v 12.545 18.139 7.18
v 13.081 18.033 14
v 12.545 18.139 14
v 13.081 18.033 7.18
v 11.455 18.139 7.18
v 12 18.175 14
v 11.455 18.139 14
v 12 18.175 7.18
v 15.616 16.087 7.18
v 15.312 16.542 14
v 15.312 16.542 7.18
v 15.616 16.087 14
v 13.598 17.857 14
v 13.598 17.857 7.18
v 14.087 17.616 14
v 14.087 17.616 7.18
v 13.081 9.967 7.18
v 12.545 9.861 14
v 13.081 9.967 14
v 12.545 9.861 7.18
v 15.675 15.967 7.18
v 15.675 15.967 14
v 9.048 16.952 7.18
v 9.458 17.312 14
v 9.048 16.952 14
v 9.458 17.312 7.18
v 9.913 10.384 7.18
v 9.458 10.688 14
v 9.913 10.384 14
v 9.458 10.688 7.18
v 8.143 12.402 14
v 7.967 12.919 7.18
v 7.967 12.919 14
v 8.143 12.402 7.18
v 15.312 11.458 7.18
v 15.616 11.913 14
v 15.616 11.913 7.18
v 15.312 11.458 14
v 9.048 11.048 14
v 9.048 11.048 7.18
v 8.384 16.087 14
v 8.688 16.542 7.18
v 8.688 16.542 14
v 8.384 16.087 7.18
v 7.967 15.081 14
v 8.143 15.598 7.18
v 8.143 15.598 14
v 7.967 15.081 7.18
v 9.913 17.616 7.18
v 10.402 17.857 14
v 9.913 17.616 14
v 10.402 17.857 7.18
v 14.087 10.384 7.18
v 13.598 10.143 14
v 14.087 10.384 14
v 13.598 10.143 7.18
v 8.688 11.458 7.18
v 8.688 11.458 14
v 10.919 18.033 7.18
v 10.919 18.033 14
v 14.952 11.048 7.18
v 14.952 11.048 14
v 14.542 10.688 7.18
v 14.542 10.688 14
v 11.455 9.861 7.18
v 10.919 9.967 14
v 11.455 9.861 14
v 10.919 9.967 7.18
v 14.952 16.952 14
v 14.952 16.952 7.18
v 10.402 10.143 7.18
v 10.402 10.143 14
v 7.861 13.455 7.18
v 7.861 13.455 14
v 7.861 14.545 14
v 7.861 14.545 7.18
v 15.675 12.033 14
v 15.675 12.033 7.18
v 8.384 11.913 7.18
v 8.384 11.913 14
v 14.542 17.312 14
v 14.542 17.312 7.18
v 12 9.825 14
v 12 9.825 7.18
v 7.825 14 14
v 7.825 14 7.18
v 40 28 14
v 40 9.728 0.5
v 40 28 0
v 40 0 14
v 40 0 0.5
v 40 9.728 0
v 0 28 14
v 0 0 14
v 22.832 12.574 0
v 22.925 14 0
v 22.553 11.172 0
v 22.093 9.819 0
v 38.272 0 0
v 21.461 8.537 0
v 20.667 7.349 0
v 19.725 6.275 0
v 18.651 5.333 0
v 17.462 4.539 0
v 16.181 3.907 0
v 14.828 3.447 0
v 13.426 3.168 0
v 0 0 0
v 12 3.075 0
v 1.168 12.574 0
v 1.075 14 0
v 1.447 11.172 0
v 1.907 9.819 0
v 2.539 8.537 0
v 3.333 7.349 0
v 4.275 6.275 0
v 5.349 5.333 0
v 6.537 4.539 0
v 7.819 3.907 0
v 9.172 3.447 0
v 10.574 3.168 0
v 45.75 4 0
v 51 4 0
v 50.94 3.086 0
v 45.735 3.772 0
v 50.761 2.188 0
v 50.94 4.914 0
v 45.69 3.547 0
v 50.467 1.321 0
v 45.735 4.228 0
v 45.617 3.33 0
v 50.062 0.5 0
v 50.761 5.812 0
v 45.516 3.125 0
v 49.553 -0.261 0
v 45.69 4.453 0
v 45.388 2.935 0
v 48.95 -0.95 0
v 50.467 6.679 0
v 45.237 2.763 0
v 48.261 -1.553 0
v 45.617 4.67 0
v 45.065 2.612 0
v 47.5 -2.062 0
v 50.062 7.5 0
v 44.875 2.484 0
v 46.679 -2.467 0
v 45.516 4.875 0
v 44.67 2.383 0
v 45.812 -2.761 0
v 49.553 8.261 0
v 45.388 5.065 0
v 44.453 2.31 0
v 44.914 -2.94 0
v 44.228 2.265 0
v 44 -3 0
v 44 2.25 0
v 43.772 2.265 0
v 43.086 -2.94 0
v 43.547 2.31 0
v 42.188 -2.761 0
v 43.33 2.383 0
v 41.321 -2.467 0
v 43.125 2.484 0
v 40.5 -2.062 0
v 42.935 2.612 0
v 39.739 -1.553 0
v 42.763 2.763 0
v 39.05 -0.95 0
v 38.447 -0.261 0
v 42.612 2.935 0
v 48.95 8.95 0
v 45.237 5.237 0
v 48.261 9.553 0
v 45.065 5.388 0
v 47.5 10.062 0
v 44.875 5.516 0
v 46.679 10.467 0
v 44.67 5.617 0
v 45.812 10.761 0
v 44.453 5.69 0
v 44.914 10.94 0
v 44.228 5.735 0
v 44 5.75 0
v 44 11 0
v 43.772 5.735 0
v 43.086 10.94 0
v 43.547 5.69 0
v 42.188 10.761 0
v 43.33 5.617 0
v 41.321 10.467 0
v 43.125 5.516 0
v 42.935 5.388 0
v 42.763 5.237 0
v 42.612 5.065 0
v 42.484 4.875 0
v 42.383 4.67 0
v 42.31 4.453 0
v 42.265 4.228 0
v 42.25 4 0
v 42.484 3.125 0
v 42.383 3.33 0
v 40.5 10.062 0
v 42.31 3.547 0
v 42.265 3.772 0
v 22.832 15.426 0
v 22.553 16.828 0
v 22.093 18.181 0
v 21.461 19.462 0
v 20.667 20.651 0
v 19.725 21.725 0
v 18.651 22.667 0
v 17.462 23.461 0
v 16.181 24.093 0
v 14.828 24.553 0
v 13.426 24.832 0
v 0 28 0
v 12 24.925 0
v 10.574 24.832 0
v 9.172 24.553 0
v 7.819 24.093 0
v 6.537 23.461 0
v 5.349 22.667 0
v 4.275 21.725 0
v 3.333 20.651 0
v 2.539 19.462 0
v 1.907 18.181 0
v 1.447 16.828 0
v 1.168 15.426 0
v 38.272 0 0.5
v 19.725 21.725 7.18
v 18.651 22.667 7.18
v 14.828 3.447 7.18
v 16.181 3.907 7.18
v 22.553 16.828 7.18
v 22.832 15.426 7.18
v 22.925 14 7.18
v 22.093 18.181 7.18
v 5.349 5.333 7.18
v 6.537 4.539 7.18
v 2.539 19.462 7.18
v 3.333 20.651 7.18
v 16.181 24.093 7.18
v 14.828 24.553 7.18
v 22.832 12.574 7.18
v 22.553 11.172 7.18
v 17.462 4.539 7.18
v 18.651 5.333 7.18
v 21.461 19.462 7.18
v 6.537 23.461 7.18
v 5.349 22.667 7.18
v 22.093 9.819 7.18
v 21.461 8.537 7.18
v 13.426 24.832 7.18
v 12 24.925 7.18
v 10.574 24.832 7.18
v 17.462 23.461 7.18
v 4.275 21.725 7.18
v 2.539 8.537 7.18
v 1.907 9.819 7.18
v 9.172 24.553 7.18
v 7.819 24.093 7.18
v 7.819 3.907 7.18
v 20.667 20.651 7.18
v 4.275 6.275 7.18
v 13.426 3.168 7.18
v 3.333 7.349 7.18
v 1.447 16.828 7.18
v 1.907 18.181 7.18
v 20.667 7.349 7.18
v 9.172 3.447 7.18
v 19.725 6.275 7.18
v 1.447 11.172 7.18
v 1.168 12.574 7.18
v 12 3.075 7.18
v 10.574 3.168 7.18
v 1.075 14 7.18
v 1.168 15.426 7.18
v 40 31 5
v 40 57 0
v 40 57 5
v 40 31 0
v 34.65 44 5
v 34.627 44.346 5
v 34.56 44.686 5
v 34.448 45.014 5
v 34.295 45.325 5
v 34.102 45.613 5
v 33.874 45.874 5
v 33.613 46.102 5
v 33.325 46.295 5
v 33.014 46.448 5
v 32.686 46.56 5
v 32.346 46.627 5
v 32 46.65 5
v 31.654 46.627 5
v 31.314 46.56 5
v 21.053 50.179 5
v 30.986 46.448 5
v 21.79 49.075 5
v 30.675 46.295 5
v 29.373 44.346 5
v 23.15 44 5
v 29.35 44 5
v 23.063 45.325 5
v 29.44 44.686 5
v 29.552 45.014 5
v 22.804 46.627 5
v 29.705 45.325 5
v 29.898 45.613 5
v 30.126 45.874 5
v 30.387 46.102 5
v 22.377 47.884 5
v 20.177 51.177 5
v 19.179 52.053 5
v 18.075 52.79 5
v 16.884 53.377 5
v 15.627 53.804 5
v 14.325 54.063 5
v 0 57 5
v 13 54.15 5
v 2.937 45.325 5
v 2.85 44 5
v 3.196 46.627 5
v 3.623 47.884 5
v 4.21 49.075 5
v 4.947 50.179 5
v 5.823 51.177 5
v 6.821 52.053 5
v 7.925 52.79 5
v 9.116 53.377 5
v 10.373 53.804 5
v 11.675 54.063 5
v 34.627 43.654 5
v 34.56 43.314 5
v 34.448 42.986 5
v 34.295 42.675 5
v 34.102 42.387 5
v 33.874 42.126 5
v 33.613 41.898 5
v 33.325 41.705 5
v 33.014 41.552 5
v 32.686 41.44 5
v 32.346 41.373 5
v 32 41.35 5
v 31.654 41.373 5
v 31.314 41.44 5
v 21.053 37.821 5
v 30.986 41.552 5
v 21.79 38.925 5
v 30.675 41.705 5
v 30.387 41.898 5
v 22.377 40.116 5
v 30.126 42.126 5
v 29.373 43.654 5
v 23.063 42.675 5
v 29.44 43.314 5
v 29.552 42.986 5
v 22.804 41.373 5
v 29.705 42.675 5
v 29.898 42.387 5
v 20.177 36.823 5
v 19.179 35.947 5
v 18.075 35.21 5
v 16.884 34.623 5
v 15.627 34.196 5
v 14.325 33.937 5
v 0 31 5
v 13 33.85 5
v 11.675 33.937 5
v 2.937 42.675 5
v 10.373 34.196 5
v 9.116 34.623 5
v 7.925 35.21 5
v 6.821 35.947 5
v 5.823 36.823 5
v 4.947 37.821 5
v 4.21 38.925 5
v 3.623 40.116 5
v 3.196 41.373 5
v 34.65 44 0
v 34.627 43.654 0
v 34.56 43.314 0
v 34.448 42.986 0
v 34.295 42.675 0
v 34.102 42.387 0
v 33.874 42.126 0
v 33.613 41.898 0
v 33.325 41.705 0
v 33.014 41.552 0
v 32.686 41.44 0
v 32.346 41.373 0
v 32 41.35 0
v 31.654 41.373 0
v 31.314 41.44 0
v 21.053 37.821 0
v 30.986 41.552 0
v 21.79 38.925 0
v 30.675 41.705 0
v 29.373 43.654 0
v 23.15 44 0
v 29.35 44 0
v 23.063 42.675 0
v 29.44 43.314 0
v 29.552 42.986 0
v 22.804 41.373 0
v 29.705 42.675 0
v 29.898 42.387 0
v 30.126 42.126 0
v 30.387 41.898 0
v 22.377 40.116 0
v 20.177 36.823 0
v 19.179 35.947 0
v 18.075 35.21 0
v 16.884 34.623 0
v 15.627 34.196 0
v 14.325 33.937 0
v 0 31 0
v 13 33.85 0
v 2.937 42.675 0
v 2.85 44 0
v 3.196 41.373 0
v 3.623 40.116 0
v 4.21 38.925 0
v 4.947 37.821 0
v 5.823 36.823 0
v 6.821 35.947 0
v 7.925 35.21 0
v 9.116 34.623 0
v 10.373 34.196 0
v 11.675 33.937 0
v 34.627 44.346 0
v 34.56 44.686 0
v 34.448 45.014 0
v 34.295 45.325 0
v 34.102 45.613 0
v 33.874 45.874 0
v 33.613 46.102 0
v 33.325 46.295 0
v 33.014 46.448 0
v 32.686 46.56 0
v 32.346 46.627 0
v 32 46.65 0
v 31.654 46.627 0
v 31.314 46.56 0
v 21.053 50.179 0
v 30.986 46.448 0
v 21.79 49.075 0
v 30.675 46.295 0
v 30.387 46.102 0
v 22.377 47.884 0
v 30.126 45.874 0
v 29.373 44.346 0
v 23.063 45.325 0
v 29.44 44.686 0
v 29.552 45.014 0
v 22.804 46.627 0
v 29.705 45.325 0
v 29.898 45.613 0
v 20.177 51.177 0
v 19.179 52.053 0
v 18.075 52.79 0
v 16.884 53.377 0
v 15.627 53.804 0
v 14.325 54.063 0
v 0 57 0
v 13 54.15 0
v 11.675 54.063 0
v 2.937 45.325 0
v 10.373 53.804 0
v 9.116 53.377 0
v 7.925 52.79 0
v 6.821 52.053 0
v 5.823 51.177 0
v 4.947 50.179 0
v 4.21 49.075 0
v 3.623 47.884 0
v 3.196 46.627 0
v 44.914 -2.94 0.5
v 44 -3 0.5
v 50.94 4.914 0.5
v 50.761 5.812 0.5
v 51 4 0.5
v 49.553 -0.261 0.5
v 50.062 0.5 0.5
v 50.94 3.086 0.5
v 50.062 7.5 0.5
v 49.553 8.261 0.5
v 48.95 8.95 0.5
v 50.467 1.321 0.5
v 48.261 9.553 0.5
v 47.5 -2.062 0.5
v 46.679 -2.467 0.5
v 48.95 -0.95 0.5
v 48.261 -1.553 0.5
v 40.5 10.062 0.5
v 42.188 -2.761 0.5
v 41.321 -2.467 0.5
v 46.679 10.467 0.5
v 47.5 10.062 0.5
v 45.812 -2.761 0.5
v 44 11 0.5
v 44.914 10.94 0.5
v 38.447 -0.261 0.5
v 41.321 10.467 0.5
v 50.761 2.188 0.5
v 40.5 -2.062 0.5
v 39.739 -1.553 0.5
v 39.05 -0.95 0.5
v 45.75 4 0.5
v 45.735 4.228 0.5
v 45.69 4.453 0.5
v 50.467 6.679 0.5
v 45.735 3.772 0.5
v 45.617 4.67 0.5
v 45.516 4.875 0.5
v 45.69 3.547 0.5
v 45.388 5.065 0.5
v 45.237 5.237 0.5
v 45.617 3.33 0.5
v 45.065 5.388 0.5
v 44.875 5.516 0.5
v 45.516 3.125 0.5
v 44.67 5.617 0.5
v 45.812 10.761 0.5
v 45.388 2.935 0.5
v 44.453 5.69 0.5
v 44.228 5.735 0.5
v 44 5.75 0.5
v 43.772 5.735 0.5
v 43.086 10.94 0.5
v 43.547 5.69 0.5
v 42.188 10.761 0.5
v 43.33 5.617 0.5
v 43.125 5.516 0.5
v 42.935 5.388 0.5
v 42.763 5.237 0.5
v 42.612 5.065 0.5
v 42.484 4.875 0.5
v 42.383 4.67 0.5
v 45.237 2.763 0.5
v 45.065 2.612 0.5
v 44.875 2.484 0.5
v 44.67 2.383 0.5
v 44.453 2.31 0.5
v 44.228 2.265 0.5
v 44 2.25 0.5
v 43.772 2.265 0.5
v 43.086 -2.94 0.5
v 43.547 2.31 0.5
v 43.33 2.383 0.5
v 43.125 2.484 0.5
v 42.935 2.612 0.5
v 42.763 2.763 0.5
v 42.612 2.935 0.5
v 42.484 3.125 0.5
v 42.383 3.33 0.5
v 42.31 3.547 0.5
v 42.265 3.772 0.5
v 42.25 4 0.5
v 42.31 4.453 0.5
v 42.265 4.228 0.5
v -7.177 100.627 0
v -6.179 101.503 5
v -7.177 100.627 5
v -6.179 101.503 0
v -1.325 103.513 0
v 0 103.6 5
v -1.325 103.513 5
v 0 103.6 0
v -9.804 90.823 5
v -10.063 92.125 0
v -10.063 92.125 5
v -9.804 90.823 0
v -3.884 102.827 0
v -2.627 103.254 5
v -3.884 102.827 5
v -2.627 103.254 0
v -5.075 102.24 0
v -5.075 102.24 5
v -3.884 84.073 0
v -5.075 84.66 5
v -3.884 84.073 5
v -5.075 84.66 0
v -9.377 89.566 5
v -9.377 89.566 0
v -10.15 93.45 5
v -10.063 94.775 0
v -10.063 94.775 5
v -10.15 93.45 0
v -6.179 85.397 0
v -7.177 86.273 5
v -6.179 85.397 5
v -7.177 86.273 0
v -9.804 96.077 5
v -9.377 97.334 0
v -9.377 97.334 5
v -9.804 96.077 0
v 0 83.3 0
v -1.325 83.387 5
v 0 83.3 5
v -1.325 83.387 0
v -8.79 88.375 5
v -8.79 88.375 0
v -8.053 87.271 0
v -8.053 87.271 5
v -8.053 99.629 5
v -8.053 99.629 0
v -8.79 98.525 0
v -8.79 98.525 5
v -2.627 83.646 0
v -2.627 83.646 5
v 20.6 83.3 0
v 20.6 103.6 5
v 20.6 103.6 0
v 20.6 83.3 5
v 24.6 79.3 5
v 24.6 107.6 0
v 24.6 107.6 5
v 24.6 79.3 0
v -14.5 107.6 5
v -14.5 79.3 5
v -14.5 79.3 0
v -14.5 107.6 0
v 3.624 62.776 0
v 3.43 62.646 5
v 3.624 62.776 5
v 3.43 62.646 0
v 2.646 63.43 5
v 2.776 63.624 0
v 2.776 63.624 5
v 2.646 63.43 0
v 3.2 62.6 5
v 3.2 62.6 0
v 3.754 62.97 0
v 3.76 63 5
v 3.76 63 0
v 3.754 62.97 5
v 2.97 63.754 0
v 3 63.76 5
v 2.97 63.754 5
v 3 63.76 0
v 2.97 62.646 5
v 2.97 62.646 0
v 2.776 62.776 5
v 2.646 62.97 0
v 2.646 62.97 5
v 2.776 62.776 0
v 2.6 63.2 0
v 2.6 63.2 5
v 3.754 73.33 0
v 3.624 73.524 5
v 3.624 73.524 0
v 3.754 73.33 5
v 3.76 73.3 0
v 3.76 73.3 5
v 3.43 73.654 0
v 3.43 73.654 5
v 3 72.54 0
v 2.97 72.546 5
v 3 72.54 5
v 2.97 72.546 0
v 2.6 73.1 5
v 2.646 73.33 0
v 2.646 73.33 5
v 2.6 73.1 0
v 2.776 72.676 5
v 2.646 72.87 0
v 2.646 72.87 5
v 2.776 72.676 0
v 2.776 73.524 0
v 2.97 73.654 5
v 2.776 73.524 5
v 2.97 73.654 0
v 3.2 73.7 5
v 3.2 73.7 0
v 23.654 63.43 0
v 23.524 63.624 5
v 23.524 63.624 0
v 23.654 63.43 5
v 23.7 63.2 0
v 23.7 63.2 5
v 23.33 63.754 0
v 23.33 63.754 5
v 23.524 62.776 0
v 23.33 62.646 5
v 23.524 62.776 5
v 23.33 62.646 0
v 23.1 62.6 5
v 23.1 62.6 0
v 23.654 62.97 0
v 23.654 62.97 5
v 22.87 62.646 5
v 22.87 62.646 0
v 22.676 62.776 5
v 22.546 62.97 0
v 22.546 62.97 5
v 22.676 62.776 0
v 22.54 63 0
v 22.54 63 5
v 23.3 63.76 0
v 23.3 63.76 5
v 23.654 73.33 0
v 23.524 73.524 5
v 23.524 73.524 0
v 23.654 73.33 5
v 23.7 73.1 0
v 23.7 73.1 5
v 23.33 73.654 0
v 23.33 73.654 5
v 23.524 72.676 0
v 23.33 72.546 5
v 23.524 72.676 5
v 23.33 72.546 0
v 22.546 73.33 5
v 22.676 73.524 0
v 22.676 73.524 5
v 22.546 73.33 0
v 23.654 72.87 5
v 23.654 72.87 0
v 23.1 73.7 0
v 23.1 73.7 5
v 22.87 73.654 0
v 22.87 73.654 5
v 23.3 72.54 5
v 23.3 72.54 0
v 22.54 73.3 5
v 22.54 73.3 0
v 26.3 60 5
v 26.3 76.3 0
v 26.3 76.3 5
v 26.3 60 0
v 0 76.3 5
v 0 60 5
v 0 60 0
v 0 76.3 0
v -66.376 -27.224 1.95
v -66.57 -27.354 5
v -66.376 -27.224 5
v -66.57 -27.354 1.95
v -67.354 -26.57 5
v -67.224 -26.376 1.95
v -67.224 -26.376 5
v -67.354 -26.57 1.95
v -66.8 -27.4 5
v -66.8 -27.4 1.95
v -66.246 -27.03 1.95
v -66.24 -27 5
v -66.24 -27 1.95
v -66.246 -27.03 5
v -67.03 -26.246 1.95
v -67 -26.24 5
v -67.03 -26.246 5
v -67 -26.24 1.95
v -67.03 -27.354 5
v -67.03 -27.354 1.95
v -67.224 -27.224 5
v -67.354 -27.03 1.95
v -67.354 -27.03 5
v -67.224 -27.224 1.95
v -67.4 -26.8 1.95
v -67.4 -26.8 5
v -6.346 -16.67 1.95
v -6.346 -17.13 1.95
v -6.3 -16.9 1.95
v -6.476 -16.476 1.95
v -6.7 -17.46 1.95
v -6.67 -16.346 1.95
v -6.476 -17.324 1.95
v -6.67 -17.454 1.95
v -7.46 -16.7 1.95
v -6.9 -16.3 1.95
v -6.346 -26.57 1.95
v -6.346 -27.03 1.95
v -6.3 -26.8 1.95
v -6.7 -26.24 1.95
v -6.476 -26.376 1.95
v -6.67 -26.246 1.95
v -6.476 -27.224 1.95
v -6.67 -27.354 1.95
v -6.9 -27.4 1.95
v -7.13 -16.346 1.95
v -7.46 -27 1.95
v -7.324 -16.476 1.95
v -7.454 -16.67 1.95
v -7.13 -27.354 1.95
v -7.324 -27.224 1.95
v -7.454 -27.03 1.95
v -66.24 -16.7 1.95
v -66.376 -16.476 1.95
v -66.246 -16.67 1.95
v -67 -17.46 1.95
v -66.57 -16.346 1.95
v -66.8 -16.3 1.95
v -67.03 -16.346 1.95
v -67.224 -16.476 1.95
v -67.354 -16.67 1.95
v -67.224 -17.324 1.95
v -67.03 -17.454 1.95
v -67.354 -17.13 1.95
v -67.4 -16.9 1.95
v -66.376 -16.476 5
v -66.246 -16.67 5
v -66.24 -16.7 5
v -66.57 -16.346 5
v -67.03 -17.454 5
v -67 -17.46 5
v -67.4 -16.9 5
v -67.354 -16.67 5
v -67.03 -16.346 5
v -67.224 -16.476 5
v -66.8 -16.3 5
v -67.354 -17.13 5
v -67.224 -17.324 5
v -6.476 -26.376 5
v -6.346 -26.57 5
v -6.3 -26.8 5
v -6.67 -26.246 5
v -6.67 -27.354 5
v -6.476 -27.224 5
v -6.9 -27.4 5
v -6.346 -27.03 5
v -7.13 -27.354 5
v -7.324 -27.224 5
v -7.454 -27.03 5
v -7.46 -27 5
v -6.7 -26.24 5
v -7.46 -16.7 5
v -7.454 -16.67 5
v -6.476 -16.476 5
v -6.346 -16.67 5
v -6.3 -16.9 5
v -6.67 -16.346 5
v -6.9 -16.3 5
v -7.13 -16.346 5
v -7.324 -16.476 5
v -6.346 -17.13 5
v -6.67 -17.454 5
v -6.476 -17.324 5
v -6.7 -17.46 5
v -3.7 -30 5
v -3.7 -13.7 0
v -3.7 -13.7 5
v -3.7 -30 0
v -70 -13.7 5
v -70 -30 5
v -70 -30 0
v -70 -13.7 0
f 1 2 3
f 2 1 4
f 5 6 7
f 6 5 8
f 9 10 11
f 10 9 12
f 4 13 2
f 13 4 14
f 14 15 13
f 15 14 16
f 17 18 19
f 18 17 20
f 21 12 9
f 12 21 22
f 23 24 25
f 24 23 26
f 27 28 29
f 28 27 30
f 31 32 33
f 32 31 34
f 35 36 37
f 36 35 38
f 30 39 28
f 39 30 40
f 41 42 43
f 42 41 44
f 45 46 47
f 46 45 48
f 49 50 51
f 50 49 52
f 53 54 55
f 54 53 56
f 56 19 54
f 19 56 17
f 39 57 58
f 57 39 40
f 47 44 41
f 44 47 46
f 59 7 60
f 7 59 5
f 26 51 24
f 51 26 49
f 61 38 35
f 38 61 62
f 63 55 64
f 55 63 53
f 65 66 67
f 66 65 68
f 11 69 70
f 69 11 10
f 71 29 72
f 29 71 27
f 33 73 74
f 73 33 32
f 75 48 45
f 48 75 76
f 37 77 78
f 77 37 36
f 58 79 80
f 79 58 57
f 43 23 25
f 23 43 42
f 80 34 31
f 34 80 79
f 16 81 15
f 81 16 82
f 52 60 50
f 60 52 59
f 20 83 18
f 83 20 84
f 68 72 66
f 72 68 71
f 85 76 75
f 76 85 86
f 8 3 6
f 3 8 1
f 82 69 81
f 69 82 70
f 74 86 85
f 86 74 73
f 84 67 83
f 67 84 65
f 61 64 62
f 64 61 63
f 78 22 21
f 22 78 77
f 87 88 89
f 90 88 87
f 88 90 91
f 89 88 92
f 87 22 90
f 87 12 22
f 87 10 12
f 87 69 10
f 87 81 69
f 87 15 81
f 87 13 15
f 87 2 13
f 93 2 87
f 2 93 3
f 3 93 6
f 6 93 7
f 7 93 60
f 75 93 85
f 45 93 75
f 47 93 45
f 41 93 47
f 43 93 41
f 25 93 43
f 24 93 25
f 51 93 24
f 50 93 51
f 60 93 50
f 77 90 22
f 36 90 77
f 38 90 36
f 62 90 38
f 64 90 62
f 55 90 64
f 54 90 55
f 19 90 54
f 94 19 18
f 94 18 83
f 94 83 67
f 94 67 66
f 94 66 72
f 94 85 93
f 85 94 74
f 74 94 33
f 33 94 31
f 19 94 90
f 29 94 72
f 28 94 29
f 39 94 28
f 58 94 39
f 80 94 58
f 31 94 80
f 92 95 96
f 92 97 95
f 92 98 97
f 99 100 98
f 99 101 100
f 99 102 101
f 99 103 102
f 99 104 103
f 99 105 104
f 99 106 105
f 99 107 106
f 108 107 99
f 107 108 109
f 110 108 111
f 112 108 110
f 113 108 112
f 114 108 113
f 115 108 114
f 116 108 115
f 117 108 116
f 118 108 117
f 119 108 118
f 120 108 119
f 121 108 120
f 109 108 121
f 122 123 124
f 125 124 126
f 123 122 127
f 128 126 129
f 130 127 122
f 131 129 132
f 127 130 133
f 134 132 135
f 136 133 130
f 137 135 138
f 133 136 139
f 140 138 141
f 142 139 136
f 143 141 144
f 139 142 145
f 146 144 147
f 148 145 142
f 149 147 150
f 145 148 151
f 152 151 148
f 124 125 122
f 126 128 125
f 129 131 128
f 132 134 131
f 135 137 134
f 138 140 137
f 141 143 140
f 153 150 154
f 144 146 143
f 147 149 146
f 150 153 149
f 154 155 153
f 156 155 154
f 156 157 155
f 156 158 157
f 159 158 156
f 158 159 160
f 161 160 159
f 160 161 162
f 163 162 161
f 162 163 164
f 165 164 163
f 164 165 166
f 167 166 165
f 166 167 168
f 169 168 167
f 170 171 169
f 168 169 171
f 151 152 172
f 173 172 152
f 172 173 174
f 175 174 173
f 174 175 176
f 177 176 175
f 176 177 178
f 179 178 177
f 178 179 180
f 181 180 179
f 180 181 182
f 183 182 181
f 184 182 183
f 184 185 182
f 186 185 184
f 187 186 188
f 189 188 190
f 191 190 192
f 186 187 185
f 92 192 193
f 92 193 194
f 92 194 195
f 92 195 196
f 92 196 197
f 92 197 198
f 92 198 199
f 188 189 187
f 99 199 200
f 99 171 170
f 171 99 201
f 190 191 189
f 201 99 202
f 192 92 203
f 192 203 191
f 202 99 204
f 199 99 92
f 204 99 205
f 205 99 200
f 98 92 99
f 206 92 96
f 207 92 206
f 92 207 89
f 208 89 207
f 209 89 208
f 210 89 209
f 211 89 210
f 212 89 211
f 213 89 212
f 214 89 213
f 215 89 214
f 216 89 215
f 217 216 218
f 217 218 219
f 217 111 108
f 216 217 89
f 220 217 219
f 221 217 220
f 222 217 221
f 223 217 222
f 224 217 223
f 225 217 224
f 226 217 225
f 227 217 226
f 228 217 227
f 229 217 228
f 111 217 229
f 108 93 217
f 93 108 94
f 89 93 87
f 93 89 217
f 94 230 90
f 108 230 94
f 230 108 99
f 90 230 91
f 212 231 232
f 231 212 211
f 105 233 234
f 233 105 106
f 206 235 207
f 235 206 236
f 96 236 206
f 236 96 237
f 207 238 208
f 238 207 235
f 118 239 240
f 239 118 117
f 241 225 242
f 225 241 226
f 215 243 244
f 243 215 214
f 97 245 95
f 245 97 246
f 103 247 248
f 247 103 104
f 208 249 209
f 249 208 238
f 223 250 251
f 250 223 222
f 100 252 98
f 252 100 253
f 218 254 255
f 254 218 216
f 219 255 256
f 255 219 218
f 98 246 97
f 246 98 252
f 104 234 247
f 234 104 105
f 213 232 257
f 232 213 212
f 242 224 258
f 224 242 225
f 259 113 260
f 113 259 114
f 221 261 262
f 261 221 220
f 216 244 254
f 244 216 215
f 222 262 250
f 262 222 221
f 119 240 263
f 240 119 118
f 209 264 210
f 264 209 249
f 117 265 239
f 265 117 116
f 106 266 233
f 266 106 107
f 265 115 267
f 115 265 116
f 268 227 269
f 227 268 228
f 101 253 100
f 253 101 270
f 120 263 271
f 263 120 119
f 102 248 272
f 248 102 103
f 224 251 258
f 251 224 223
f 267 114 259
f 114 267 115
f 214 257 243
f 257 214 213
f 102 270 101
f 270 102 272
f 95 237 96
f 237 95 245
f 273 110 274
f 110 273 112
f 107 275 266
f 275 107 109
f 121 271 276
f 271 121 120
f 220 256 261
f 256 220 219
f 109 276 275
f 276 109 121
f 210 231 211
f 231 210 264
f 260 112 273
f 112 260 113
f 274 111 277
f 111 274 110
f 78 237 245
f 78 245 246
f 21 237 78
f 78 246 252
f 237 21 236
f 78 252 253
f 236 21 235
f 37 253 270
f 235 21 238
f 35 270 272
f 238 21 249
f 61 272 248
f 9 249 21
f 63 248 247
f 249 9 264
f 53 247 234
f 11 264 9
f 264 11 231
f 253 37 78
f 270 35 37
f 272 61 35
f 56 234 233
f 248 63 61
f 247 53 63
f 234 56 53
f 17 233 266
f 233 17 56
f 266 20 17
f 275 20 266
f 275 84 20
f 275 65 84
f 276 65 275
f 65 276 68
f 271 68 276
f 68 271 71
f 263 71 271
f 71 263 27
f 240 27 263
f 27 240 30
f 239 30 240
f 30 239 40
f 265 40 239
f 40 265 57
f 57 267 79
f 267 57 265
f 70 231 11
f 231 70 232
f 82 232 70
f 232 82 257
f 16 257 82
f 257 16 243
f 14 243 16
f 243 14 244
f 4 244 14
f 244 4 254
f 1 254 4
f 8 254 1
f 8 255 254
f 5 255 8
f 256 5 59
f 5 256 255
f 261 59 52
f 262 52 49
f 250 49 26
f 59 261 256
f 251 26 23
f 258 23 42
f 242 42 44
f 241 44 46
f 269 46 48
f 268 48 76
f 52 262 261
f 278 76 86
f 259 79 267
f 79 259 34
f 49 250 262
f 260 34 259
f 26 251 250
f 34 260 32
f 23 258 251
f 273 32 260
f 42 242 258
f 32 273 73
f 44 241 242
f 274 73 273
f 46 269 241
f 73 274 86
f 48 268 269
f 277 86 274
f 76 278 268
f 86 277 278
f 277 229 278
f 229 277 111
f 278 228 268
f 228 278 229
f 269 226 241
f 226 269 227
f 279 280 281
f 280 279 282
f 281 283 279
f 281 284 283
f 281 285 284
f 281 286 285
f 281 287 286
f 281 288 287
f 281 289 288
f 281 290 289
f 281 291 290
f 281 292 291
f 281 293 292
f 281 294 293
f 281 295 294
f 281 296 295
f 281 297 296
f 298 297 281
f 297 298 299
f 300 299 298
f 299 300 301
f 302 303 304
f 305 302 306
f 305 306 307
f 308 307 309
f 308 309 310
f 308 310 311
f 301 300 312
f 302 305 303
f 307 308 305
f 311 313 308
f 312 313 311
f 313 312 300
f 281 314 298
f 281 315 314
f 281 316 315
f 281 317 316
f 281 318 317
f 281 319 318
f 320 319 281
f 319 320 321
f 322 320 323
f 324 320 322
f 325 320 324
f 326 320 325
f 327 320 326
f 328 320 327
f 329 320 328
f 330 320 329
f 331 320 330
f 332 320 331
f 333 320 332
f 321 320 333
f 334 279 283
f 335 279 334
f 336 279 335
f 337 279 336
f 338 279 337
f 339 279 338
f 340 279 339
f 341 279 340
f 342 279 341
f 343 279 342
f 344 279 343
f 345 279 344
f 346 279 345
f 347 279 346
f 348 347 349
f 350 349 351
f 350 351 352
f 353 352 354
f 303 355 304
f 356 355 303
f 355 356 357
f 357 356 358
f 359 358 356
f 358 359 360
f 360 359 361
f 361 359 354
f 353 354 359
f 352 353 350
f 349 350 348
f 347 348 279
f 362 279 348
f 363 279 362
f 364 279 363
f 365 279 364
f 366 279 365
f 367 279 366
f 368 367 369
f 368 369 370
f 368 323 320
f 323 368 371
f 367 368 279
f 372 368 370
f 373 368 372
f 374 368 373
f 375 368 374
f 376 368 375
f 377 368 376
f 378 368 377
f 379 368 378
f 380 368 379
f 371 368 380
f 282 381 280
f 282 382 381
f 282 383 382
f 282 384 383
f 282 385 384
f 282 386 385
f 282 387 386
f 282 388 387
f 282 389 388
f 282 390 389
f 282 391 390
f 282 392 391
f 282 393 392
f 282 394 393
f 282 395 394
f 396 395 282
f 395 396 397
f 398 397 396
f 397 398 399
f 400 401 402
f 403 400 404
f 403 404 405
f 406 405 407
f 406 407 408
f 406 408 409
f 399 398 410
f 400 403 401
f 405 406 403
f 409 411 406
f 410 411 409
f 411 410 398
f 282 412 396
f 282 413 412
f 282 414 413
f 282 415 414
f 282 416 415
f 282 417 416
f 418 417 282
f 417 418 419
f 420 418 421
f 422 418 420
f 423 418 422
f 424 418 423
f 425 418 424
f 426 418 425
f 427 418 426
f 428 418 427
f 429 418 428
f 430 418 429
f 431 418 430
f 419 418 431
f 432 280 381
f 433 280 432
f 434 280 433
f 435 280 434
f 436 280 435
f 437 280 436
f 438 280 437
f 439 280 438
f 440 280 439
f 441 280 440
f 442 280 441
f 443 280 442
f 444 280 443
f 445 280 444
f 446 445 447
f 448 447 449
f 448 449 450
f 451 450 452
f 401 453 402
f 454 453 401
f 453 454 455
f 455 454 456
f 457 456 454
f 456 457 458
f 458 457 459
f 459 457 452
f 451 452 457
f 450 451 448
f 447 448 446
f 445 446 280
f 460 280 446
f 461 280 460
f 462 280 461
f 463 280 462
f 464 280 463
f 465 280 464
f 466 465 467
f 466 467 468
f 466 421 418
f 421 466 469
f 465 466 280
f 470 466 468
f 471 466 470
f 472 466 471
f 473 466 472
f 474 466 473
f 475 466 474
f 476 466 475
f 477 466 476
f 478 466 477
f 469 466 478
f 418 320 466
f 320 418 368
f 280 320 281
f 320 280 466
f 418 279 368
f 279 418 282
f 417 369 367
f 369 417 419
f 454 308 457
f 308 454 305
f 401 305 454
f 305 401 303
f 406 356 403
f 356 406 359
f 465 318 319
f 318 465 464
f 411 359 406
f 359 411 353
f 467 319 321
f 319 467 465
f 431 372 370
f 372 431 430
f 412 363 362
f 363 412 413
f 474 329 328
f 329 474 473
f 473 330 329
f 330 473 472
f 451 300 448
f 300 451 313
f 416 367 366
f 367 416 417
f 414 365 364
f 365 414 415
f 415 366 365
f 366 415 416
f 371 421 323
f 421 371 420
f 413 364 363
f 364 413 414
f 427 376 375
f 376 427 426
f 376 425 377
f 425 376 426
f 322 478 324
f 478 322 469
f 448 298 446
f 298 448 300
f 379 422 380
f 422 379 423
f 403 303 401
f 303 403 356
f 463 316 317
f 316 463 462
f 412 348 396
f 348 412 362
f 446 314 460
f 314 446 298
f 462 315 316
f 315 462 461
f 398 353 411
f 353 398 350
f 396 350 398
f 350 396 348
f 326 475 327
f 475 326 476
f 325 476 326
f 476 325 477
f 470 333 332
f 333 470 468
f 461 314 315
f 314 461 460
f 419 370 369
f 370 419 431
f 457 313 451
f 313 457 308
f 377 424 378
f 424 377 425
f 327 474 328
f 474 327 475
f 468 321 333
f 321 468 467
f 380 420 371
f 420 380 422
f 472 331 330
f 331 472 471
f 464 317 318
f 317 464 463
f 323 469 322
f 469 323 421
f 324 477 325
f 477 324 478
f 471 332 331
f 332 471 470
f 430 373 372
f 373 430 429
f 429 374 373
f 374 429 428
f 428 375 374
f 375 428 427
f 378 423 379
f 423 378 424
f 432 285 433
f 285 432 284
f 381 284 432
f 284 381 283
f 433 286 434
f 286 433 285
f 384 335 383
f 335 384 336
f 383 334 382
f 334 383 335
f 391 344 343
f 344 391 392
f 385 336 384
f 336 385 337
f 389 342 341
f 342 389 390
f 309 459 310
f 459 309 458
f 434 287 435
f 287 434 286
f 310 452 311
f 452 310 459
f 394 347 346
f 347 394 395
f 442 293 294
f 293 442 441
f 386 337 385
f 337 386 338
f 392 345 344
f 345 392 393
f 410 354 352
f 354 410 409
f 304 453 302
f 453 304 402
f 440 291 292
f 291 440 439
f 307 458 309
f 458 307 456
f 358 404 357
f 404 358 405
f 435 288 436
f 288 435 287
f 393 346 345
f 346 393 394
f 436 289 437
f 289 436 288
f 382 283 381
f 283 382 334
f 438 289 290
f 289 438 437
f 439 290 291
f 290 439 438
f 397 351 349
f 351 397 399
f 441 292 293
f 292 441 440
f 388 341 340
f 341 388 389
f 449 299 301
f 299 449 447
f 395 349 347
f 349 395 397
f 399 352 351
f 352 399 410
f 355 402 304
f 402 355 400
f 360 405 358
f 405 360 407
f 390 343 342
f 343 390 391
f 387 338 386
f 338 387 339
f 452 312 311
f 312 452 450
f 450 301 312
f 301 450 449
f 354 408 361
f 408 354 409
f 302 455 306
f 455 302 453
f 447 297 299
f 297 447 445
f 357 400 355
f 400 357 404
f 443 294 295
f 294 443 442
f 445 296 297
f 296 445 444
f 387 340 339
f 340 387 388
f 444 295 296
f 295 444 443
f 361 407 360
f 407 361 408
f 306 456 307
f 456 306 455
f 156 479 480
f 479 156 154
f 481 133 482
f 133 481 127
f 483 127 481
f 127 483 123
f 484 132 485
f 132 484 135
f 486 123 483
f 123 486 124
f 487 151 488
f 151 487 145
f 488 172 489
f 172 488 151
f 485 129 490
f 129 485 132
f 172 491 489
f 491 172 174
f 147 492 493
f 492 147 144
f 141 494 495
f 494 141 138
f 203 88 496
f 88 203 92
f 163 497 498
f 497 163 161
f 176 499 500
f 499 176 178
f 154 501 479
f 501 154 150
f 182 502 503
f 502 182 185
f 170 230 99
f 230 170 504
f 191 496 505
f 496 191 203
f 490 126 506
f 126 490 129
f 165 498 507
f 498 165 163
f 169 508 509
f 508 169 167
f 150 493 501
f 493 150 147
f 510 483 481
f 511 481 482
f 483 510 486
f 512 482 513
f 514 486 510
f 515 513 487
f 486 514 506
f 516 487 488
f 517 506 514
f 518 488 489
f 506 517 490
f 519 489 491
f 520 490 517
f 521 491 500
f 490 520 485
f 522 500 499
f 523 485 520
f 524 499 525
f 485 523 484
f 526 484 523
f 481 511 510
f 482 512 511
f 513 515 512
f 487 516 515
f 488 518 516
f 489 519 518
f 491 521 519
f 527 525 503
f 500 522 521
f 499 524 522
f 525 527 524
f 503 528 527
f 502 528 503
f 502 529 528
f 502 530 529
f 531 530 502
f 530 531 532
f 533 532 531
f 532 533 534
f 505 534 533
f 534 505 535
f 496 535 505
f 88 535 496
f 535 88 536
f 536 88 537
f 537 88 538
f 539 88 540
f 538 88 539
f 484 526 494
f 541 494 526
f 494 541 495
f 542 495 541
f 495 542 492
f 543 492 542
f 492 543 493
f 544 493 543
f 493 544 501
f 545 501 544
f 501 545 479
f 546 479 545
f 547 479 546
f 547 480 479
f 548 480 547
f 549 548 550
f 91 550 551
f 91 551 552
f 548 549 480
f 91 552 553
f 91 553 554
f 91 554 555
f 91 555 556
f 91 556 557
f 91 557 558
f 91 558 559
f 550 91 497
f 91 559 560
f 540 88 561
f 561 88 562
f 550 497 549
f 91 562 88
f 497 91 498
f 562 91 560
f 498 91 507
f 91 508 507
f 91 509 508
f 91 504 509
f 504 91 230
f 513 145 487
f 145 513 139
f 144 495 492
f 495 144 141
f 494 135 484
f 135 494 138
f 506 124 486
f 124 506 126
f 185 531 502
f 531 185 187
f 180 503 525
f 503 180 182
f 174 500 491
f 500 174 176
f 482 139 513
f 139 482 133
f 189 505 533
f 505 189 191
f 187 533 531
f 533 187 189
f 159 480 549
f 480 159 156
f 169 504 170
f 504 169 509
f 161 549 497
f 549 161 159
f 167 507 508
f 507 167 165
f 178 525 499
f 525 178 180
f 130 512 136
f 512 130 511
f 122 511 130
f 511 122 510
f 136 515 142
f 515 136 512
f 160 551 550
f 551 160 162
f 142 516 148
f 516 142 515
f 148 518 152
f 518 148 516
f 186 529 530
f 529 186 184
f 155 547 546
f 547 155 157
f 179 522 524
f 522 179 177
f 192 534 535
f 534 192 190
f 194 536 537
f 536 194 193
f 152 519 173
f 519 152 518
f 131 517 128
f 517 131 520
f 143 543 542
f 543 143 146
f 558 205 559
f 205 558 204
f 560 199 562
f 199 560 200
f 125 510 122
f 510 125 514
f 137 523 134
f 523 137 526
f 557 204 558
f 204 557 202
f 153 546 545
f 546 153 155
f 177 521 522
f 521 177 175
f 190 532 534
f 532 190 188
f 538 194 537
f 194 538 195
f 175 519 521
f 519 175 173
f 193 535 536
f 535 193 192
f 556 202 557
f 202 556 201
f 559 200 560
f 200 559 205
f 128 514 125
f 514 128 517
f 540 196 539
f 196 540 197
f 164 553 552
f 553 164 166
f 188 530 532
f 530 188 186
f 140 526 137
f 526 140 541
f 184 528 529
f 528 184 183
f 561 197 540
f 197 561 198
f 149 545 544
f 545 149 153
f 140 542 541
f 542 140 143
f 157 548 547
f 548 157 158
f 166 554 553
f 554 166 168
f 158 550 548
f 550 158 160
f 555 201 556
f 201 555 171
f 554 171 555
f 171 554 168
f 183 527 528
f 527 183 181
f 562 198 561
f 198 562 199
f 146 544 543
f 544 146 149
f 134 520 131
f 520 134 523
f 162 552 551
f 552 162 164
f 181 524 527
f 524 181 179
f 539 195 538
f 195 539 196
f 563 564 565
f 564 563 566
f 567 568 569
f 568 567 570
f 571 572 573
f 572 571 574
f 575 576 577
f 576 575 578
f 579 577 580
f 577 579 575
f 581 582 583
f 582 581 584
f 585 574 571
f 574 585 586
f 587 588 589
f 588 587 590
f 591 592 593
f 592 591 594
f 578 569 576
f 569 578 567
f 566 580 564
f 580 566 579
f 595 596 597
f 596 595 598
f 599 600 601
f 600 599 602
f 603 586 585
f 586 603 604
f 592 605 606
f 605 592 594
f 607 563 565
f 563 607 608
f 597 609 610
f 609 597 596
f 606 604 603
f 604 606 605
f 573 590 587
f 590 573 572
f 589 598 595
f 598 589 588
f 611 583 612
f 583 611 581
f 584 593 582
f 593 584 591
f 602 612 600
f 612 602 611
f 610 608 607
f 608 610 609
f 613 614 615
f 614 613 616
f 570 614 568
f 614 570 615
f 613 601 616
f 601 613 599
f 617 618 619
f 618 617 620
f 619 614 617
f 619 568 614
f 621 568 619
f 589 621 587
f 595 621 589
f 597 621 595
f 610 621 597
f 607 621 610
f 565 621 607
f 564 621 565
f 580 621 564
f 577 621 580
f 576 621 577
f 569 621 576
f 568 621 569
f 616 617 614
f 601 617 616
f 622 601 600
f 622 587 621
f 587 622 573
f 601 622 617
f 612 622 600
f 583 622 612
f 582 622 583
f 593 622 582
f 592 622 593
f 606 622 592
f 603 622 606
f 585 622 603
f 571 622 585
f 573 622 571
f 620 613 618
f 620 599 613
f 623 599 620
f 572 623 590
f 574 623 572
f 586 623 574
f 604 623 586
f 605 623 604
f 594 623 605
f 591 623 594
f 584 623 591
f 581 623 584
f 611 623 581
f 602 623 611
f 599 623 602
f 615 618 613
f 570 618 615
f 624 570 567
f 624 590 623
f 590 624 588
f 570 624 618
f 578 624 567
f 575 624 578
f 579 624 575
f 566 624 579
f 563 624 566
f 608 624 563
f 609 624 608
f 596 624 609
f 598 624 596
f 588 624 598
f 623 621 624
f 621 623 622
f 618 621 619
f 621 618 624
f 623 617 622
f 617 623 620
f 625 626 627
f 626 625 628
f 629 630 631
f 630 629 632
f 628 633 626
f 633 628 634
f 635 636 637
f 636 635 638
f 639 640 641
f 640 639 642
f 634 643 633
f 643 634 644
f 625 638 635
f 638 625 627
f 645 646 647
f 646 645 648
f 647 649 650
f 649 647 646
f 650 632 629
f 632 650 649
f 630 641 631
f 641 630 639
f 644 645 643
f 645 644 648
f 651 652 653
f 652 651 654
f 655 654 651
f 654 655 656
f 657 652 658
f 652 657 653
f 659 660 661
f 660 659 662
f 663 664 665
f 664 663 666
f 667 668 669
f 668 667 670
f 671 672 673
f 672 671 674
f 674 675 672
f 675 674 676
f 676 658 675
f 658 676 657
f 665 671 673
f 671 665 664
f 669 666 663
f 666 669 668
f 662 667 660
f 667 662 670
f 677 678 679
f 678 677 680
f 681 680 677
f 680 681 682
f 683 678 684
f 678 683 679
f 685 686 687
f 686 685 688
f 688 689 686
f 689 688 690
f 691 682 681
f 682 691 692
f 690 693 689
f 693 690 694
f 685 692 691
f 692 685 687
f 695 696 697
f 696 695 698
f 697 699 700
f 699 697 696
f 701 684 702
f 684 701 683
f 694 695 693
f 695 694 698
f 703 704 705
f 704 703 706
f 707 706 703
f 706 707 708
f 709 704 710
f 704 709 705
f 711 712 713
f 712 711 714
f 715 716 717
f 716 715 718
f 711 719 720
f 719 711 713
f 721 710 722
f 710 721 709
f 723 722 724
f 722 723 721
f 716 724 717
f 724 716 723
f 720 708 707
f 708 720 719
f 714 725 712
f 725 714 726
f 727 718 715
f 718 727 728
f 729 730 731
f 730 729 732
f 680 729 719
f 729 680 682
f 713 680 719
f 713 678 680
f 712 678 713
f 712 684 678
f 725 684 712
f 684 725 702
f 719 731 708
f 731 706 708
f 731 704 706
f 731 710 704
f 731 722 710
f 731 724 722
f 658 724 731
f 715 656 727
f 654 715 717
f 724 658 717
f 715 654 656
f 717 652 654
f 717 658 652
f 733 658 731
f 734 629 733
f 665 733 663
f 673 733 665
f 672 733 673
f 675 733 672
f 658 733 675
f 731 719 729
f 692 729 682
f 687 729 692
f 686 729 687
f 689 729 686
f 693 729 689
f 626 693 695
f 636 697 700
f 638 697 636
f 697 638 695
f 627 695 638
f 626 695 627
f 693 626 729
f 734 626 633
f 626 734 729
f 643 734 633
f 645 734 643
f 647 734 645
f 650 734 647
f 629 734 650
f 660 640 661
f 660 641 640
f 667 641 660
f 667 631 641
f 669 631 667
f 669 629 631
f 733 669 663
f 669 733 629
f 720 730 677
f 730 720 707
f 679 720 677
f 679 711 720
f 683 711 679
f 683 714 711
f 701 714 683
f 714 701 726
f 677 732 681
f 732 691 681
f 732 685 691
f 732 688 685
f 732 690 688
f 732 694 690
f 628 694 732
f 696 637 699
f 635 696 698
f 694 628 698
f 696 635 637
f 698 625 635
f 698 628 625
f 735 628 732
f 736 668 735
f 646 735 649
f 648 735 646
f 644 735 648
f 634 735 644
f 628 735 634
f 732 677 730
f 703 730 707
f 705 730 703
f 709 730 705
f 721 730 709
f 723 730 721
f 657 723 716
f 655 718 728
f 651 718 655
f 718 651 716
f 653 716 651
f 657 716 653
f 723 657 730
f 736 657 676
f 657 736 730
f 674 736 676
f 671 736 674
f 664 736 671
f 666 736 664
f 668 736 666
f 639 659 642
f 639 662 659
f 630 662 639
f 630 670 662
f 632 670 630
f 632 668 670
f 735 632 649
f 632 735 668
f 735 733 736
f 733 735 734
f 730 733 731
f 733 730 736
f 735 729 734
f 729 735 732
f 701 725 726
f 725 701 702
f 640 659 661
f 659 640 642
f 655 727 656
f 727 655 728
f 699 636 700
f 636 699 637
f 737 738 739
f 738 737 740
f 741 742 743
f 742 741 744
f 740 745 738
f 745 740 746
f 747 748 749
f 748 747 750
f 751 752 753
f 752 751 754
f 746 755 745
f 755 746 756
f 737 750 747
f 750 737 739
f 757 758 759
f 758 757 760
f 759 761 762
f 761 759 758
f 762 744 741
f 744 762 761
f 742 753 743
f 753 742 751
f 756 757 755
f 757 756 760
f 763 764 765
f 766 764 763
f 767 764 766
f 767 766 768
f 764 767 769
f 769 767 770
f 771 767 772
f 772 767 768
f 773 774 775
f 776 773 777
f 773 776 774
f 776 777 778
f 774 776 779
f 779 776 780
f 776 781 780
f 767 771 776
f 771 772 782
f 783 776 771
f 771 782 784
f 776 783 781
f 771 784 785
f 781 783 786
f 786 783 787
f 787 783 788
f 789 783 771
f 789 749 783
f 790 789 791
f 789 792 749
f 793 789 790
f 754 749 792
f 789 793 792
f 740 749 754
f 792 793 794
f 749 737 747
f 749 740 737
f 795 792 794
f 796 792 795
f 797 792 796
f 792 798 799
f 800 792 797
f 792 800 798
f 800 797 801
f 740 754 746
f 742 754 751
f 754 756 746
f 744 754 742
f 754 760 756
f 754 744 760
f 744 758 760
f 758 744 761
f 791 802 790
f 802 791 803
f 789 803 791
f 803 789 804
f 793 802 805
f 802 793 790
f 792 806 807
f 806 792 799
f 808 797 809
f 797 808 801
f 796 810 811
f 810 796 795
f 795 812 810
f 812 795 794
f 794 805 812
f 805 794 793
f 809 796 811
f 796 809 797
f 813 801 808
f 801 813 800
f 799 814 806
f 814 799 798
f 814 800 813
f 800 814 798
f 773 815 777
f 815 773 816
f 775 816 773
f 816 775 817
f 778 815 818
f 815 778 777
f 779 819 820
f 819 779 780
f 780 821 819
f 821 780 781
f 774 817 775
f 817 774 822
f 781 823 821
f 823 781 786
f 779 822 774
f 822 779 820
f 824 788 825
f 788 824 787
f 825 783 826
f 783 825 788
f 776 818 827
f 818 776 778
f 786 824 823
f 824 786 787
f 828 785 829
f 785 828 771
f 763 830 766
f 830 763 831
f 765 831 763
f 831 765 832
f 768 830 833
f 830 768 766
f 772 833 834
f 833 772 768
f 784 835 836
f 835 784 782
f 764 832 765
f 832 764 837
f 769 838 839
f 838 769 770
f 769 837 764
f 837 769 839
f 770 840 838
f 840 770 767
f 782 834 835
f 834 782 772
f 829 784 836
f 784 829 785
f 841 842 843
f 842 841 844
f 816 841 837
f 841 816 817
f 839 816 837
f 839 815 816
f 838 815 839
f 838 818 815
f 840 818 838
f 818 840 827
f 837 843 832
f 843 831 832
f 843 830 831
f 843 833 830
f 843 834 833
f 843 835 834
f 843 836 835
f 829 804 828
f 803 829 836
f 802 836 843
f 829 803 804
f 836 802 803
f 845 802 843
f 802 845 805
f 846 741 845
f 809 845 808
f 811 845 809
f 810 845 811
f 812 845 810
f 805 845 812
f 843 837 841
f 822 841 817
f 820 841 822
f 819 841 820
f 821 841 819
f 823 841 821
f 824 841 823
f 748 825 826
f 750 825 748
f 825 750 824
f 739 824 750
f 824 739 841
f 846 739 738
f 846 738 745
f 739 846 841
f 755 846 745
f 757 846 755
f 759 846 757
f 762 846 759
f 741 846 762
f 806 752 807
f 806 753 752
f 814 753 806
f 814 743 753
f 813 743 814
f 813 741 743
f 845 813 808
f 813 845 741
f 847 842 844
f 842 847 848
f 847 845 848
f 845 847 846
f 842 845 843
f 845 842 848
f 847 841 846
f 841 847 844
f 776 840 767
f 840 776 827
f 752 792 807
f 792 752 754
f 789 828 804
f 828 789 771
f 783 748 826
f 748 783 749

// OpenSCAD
// Gen-DH — fit coupon: O20/O5 THROUGH pockets at carrier thickness (test on a steel offcut), 608 seat,
// D-flat bore, gap shim, and one bobbin-bay slice (bobbin footprint + bay_clear) to test former fit.
include <parameters.scad>;
$fn = 48;
// D-flat keyed bore: flat faces +X (angle 0 = magnet pocket 0 = index notch)
module dflat_bore(h) {
    intersection() {
        cylinder(d=shaft_bore, h=h);
        translate([-shaft_bore, -shaft_bore, 0]) cube([shaft_bore + dflat_x, 2*shaft_bore, h]);
    }
}
module sector_2d(r_in, r_out, ang) {
    polygon([
        for (a = [-ang/2 : ang/24 : ang/2]) [r_in*cos(a), r_in*sin(a)],
        for (a = [ang/2 : -ang/24 : -ang/2]) [r_out*cos(a), r_out*sin(a)]
    ]);
}
module footprint_2d() { offset(r=wall) sector_2d(coil_id_r, coil_od_r, span_deg); }
module hub_2d()       { offset(delta=-coil_core_inset) sector_2d(coil_id_r, coil_od_r, span_deg); }

block_w = 40; block_d = 28; block_h = 14;
difference() {
    cube([block_w, block_d, block_h]);
    translate([12, block_d/2, -0.02]) cylinder(d=bearing_d, h=bearing_h);
    translate([12, block_d/2, -0.1]) dflat_bore(block_h + 1);
}
translate([0, block_d + 3, 0]) difference() {
    cube([40, 26, carrier_thick]);
    translate([13, 13, -0.1]) cylinder(d=large_pocket_d, h=carrier_thick + 0.2);
    translate([32, 13, -0.1]) cylinder(d=small_pocket_d, h=carrier_thick + 0.2);
}
translate([block_w + 4, 4, 0])
    difference() {
        cylinder(d=spacer_pad_od, h=gap_spacer_h);
        translate([0, 0, -0.1]) cylinder(d=spacer_pad_id, h=gap_spacer_h + 0.2);
    }
// KEYHOLE pole pocket test (2026-10-18): O20 disc pocket + N42 20x10x5 block pocket merged (hull), as on the arcs.
// Drop a disc and a block in: they must push each other onto the two far walls and sit flat. Block pocket has corner reliefs.
translate([0, block_d + 3 + 26 + 3 + block_radial + block_pocket_clear + 6 + 3 + max(block_tangential, large_pocket_d) / 2 + 4, 0]) difference() {
    translate([-14.5, -(max(block_tangential, large_pocket_d) / 2 + 4), 0]) cube([14.5 + abs(block_R_list[0] - R_large) + block_radial / 2 + 4, max(block_tangential, large_pocket_d) + 8, carrier_thick]);
    translate([0, 0, -0.1]) {
        translate([disc_pocket_shift * sign(block_R_list[0] - R_large), 0, 0]) cylinder(d=large_pocket_d, h=carrier_thick + 0.2);
        translate([disc_pocket_shift * sign(block_R_list[0] - R_large), -(block_tangential + block_pocket_clear)/2, 0])
            cube([abs(block_R_list[0] - R_large) - abs(block_pocket_shift) + (block_radial + block_pocket_clear)/2 - disc_pocket_shift * sign(block_R_list[0] - R_large), block_tangential + block_pocket_clear, carrier_thick + 0.2]);
    }
}
// N42 20x10x5 BLOCK through-pocket test (block + block_pocket_clear, 1.2 mm corner reliefs), 2026-10-16
translate([0, block_d + 3 + 26 + 3, 0]) difference() {
    cube([block_tangential + block_pocket_clear + 6, block_radial + block_pocket_clear + 6, carrier_thick]);
    translate([3, 3, -0.1]) cube([block_tangential + block_pocket_clear, block_radial + block_pocket_clear, carrier_thick + 0.2]);
    for (x = [3.2, 3 + block_tangential + block_pocket_clear - 0.2], y = [3.2, 3 + block_radial + block_pocket_clear - 0.2])
        translate([x, y, -0.1]) cylinder(d=1.2, h=carrier_thick + 0.2, $fn=16);
}
// N52 60x10x3 BAR blind-pocket test (2026-10-21): bar + 0.3 mm, depth block2_pocket_depth: the bar face must sit flush with the top.
translate([-70, -30, 0]) difference() {
    cube([block2_tangential + block2_pocket_clear + 6, block2_radial + block2_pocket_clear + 6, carrier_thick]);
    translate([3, 3, carrier_thick - block2_pocket_depth]) cube([block2_tangential + block2_pocket_clear, block2_radial + block2_pocket_clear, carrier_thick]);
    for (x = [3.2, 3 + block2_tangential + block2_pocket_clear - 0.2], y = [3.2, 3 + block2_radial + block2_pocket_clear - 0.2])
        translate([x, y, carrier_thick - block2_pocket_depth]) cylinder(d=1.2, h=carrier_thick, $fn=16);
}
